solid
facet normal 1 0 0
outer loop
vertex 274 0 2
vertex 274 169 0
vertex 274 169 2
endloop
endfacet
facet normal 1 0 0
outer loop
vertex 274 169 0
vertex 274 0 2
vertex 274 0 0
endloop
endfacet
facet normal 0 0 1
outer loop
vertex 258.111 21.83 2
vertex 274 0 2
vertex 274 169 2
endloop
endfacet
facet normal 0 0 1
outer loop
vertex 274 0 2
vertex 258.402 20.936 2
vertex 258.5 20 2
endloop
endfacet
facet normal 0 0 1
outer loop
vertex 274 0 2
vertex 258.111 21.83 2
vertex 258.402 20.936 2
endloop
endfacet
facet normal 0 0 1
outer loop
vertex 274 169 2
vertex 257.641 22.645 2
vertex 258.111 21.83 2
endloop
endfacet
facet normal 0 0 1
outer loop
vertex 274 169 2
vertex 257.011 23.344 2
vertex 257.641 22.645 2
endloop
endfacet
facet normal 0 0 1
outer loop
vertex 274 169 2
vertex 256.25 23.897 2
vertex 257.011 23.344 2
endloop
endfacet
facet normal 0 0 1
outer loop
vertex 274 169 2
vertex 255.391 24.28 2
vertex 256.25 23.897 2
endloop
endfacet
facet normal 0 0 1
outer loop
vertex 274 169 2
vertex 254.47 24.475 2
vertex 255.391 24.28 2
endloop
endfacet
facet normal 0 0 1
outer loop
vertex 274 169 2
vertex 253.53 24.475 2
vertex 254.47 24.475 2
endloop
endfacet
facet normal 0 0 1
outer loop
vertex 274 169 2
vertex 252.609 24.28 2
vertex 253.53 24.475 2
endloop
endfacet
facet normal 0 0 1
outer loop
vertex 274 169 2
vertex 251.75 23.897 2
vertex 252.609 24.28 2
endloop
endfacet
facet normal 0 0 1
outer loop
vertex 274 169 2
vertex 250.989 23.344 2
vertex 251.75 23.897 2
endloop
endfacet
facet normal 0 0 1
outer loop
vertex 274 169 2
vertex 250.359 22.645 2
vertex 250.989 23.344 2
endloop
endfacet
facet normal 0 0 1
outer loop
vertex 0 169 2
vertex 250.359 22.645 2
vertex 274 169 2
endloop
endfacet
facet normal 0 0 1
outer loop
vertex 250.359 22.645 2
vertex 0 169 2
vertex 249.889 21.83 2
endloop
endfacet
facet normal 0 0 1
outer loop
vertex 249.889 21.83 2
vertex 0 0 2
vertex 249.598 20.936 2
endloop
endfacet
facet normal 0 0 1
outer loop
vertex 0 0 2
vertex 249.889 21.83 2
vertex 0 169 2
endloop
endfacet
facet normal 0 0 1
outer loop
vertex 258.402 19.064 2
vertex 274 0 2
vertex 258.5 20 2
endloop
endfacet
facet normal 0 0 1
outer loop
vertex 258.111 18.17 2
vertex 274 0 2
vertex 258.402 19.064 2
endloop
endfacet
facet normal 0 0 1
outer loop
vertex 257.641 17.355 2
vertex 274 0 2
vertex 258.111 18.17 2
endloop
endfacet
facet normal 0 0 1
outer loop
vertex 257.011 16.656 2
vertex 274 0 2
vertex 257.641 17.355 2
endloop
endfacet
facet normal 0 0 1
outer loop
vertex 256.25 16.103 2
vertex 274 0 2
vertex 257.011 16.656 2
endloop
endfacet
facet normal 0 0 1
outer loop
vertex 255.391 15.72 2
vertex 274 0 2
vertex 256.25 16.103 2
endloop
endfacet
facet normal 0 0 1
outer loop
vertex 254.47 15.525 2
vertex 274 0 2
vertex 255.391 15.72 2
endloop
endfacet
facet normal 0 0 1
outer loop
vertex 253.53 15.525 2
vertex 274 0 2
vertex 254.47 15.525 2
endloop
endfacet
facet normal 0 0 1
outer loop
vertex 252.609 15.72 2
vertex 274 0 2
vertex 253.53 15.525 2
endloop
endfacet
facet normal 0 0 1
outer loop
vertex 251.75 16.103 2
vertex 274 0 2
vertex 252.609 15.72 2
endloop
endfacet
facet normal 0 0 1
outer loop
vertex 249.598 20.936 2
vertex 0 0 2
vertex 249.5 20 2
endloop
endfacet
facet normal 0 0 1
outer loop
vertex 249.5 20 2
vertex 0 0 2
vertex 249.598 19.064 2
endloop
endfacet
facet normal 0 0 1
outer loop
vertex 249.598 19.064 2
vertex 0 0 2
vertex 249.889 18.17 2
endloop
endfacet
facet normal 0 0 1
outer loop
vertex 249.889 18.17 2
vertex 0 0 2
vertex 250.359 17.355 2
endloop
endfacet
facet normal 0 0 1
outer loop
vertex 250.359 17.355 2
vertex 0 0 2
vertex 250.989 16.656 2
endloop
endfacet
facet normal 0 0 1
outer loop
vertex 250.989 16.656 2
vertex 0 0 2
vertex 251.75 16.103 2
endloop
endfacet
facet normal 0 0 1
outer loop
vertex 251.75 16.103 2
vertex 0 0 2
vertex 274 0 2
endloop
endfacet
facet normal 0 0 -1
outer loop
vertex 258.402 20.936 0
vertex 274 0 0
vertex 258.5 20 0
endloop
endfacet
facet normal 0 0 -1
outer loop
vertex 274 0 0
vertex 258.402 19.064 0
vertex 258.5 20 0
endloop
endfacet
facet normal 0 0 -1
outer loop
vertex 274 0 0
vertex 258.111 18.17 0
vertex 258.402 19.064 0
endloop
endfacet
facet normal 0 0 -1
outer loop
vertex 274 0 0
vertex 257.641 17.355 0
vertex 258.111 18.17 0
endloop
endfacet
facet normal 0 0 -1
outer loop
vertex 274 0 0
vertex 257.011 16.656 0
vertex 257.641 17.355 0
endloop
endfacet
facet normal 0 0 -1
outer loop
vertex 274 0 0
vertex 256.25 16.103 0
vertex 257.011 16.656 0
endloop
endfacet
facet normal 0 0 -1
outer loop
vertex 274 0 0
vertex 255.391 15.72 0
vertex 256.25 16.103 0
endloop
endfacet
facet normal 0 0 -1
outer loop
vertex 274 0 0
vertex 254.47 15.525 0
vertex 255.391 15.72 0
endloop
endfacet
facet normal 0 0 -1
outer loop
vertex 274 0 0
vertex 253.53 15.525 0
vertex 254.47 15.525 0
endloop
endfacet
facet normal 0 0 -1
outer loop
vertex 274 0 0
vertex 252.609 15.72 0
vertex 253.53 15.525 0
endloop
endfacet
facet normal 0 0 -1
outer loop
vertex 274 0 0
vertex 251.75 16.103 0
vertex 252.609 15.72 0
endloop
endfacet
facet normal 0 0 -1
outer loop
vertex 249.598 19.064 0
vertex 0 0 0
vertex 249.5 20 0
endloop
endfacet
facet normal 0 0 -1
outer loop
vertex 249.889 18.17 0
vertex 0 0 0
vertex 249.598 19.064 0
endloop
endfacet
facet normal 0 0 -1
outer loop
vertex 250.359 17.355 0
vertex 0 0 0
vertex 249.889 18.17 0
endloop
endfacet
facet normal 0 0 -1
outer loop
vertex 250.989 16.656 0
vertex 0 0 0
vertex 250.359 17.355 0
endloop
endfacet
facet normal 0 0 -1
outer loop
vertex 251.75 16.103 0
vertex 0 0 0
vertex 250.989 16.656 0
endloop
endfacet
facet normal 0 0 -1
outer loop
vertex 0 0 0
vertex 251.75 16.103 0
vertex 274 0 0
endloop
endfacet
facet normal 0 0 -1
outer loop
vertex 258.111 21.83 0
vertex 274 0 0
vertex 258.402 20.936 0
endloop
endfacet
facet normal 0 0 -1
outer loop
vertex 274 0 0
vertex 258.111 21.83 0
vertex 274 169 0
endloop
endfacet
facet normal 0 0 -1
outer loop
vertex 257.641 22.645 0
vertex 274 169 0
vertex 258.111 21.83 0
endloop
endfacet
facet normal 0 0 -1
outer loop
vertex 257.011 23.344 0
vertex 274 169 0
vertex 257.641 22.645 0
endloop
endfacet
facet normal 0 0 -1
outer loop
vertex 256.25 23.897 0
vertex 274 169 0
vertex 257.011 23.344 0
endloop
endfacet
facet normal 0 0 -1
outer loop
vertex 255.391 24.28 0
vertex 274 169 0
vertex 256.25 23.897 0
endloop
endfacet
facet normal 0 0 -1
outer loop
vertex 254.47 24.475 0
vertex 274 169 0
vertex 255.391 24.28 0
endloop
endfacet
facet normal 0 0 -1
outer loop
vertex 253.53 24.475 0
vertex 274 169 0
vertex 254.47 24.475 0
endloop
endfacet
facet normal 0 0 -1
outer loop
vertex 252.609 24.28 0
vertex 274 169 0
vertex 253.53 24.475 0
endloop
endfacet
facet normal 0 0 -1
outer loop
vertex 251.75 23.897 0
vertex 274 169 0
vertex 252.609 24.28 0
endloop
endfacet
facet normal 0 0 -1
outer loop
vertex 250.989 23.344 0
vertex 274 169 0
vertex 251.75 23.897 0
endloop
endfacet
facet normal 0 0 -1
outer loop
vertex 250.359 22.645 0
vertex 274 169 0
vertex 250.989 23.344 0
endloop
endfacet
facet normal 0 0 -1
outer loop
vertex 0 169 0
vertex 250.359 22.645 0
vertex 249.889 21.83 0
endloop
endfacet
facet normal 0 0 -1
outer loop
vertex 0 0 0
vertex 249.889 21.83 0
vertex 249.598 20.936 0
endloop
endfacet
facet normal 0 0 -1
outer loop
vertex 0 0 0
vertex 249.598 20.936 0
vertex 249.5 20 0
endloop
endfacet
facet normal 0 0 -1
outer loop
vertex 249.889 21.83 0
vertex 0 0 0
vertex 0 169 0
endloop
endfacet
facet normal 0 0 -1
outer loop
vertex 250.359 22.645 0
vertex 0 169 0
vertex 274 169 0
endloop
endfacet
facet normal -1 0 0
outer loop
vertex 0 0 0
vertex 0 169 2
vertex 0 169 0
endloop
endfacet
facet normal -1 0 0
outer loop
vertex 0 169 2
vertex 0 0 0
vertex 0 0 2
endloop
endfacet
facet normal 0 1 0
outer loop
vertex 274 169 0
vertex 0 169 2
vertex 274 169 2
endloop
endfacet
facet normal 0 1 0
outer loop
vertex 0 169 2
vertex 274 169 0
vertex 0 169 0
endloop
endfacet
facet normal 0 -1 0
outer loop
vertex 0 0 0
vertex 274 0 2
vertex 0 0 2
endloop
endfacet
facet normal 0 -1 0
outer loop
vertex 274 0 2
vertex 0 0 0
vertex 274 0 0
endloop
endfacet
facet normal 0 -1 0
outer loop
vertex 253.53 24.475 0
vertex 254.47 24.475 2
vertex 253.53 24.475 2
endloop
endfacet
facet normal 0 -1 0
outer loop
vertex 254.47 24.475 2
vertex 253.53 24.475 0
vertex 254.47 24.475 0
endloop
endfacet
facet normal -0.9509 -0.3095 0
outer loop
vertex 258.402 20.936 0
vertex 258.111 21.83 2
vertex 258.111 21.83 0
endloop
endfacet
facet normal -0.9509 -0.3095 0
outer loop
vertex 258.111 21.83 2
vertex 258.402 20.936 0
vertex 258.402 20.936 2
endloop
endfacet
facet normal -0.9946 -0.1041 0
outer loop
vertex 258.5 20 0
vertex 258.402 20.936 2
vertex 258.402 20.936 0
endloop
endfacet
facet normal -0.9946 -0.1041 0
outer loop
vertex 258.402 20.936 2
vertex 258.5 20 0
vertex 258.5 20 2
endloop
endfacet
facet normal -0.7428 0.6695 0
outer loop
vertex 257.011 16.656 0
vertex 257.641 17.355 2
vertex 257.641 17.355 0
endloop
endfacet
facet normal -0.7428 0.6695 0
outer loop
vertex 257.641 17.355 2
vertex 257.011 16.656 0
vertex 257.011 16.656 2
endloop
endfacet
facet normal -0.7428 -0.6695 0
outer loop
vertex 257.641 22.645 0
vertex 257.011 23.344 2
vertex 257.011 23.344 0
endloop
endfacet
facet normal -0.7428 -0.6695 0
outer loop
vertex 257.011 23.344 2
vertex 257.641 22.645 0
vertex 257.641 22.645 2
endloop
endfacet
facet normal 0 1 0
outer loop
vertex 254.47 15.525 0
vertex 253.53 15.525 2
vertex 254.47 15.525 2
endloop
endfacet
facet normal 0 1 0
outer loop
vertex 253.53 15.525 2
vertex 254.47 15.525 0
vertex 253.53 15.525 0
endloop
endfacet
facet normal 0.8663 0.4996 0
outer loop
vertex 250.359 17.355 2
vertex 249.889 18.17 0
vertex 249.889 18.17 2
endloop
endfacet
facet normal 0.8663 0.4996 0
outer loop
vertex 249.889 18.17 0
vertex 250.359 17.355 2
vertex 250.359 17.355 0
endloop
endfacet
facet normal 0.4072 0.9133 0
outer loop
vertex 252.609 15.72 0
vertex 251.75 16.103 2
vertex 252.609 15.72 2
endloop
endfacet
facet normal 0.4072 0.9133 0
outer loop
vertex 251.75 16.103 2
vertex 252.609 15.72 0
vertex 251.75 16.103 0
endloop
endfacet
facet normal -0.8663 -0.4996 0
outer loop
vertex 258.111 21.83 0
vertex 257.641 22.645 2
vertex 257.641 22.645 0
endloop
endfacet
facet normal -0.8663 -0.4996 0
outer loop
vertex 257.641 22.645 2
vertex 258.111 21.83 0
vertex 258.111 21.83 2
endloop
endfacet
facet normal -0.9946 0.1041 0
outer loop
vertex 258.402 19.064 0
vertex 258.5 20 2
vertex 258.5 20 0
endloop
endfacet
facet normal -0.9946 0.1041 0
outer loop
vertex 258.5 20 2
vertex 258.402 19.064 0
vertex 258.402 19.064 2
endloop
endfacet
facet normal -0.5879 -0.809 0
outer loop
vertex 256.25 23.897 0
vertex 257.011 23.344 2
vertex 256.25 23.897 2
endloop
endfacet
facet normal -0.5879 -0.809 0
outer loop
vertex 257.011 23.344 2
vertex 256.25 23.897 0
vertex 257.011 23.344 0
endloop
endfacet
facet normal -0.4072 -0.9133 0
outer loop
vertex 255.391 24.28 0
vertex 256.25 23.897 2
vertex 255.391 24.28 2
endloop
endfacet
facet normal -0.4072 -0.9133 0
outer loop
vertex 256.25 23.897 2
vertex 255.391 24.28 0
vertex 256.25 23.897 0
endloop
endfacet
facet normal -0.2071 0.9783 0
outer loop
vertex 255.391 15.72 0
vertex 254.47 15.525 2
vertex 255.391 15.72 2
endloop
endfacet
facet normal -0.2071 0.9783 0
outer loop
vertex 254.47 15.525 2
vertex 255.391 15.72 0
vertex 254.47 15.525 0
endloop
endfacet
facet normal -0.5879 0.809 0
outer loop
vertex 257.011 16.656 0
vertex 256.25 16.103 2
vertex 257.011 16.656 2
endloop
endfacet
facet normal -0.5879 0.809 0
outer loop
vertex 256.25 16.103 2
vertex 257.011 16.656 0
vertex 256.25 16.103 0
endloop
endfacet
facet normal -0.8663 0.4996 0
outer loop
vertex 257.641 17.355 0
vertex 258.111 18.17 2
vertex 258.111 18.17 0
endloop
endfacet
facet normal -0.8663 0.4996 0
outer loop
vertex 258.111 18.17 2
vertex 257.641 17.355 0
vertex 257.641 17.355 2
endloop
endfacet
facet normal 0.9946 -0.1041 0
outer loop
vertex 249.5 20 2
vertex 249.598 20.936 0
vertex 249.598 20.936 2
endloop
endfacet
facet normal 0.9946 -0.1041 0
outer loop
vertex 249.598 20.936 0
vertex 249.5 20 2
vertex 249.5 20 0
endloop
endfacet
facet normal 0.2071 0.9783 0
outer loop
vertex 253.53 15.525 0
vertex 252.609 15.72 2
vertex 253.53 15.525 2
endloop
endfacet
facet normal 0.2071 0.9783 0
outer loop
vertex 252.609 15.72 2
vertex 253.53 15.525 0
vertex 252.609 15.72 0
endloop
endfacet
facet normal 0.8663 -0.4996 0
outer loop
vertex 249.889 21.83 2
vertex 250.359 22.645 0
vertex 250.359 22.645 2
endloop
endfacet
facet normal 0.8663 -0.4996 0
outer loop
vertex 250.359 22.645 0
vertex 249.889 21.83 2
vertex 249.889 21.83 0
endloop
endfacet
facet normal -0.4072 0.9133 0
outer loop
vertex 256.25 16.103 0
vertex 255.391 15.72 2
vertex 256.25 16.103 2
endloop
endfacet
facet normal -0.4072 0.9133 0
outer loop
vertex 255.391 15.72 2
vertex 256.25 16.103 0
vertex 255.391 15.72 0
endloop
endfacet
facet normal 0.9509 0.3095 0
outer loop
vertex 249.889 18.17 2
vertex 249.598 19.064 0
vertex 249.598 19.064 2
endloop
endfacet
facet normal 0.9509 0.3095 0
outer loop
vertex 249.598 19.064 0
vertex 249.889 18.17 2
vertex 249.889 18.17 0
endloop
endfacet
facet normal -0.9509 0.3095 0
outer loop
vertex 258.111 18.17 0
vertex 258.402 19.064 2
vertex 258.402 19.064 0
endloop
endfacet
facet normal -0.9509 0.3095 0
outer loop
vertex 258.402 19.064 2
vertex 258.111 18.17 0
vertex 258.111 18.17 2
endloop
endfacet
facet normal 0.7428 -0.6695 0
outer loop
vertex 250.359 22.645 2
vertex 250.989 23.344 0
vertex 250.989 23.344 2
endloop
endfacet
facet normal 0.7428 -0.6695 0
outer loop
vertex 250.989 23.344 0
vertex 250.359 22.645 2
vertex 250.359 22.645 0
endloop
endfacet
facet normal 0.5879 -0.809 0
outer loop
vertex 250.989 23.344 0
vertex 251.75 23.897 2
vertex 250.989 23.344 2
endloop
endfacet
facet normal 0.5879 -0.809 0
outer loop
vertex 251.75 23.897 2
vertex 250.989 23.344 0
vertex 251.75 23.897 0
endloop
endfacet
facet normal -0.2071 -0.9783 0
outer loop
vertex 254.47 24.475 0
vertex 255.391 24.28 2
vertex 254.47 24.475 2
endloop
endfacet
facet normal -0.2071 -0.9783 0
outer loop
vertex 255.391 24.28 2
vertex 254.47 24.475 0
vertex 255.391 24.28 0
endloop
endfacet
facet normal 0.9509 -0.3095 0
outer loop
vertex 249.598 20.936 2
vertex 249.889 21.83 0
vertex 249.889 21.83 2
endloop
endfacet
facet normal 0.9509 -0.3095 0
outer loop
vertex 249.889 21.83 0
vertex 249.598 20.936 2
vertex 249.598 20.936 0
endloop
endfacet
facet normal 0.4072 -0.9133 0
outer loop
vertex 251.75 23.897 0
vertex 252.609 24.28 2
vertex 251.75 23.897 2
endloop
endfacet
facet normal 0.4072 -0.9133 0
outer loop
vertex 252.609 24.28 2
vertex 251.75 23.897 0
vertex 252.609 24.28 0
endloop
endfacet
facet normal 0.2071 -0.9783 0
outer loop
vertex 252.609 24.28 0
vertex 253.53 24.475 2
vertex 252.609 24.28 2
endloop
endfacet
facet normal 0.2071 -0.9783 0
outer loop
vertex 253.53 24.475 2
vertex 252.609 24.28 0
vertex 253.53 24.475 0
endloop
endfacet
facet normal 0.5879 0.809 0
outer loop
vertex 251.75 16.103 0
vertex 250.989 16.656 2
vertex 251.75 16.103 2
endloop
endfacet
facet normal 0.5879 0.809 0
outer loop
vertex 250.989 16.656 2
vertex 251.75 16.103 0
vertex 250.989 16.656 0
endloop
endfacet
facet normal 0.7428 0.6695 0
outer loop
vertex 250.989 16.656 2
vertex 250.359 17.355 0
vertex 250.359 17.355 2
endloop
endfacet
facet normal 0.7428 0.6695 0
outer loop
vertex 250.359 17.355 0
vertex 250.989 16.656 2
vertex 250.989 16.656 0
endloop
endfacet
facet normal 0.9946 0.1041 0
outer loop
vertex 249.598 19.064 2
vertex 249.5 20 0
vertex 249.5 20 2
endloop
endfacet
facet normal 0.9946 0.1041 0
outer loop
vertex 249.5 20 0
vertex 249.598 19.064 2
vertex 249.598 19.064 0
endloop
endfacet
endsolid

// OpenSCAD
// Word Clock LED Back Panel - Simplified Version
// Matches width=175, height=130, borders 50/20

// --- Dimensions from Stencil Source ---
width = 175;           // 
height = 130;          // [cite: 2]
border_lr = 50;        // [cite: 3]
border_tb = 20;        // [cite: 3]

// --- Panel Settings ---
panel_thickness = 2;   // Set to 2mm as requested
tolerance = 0.5;       // Space for fit within the snap frame
power_exit_r = 4.5;    // Hole for the power/USB cable

// --- Calculated Outer Dimensions ---
// Formula based on inner size + borders [cite: 4]
outer_w = width + (border_lr * 2) - (tolerance * 2);
outer_h = height + (border_tb * 2) - (tolerance * 2);

difference() {
    // 1. The Main Solid Plate
    cube([outer_w, outer_h, panel_thickness]);

    // 2. Power Cable Exit (Bottom Right Corner)
    // Positioned in the border area to avoid the baffle grid
    translate([outer_w - 20, 20, -1])
        cylinder(h = panel_thickness + 2, r = power_exit_r, $fn=30);
}
